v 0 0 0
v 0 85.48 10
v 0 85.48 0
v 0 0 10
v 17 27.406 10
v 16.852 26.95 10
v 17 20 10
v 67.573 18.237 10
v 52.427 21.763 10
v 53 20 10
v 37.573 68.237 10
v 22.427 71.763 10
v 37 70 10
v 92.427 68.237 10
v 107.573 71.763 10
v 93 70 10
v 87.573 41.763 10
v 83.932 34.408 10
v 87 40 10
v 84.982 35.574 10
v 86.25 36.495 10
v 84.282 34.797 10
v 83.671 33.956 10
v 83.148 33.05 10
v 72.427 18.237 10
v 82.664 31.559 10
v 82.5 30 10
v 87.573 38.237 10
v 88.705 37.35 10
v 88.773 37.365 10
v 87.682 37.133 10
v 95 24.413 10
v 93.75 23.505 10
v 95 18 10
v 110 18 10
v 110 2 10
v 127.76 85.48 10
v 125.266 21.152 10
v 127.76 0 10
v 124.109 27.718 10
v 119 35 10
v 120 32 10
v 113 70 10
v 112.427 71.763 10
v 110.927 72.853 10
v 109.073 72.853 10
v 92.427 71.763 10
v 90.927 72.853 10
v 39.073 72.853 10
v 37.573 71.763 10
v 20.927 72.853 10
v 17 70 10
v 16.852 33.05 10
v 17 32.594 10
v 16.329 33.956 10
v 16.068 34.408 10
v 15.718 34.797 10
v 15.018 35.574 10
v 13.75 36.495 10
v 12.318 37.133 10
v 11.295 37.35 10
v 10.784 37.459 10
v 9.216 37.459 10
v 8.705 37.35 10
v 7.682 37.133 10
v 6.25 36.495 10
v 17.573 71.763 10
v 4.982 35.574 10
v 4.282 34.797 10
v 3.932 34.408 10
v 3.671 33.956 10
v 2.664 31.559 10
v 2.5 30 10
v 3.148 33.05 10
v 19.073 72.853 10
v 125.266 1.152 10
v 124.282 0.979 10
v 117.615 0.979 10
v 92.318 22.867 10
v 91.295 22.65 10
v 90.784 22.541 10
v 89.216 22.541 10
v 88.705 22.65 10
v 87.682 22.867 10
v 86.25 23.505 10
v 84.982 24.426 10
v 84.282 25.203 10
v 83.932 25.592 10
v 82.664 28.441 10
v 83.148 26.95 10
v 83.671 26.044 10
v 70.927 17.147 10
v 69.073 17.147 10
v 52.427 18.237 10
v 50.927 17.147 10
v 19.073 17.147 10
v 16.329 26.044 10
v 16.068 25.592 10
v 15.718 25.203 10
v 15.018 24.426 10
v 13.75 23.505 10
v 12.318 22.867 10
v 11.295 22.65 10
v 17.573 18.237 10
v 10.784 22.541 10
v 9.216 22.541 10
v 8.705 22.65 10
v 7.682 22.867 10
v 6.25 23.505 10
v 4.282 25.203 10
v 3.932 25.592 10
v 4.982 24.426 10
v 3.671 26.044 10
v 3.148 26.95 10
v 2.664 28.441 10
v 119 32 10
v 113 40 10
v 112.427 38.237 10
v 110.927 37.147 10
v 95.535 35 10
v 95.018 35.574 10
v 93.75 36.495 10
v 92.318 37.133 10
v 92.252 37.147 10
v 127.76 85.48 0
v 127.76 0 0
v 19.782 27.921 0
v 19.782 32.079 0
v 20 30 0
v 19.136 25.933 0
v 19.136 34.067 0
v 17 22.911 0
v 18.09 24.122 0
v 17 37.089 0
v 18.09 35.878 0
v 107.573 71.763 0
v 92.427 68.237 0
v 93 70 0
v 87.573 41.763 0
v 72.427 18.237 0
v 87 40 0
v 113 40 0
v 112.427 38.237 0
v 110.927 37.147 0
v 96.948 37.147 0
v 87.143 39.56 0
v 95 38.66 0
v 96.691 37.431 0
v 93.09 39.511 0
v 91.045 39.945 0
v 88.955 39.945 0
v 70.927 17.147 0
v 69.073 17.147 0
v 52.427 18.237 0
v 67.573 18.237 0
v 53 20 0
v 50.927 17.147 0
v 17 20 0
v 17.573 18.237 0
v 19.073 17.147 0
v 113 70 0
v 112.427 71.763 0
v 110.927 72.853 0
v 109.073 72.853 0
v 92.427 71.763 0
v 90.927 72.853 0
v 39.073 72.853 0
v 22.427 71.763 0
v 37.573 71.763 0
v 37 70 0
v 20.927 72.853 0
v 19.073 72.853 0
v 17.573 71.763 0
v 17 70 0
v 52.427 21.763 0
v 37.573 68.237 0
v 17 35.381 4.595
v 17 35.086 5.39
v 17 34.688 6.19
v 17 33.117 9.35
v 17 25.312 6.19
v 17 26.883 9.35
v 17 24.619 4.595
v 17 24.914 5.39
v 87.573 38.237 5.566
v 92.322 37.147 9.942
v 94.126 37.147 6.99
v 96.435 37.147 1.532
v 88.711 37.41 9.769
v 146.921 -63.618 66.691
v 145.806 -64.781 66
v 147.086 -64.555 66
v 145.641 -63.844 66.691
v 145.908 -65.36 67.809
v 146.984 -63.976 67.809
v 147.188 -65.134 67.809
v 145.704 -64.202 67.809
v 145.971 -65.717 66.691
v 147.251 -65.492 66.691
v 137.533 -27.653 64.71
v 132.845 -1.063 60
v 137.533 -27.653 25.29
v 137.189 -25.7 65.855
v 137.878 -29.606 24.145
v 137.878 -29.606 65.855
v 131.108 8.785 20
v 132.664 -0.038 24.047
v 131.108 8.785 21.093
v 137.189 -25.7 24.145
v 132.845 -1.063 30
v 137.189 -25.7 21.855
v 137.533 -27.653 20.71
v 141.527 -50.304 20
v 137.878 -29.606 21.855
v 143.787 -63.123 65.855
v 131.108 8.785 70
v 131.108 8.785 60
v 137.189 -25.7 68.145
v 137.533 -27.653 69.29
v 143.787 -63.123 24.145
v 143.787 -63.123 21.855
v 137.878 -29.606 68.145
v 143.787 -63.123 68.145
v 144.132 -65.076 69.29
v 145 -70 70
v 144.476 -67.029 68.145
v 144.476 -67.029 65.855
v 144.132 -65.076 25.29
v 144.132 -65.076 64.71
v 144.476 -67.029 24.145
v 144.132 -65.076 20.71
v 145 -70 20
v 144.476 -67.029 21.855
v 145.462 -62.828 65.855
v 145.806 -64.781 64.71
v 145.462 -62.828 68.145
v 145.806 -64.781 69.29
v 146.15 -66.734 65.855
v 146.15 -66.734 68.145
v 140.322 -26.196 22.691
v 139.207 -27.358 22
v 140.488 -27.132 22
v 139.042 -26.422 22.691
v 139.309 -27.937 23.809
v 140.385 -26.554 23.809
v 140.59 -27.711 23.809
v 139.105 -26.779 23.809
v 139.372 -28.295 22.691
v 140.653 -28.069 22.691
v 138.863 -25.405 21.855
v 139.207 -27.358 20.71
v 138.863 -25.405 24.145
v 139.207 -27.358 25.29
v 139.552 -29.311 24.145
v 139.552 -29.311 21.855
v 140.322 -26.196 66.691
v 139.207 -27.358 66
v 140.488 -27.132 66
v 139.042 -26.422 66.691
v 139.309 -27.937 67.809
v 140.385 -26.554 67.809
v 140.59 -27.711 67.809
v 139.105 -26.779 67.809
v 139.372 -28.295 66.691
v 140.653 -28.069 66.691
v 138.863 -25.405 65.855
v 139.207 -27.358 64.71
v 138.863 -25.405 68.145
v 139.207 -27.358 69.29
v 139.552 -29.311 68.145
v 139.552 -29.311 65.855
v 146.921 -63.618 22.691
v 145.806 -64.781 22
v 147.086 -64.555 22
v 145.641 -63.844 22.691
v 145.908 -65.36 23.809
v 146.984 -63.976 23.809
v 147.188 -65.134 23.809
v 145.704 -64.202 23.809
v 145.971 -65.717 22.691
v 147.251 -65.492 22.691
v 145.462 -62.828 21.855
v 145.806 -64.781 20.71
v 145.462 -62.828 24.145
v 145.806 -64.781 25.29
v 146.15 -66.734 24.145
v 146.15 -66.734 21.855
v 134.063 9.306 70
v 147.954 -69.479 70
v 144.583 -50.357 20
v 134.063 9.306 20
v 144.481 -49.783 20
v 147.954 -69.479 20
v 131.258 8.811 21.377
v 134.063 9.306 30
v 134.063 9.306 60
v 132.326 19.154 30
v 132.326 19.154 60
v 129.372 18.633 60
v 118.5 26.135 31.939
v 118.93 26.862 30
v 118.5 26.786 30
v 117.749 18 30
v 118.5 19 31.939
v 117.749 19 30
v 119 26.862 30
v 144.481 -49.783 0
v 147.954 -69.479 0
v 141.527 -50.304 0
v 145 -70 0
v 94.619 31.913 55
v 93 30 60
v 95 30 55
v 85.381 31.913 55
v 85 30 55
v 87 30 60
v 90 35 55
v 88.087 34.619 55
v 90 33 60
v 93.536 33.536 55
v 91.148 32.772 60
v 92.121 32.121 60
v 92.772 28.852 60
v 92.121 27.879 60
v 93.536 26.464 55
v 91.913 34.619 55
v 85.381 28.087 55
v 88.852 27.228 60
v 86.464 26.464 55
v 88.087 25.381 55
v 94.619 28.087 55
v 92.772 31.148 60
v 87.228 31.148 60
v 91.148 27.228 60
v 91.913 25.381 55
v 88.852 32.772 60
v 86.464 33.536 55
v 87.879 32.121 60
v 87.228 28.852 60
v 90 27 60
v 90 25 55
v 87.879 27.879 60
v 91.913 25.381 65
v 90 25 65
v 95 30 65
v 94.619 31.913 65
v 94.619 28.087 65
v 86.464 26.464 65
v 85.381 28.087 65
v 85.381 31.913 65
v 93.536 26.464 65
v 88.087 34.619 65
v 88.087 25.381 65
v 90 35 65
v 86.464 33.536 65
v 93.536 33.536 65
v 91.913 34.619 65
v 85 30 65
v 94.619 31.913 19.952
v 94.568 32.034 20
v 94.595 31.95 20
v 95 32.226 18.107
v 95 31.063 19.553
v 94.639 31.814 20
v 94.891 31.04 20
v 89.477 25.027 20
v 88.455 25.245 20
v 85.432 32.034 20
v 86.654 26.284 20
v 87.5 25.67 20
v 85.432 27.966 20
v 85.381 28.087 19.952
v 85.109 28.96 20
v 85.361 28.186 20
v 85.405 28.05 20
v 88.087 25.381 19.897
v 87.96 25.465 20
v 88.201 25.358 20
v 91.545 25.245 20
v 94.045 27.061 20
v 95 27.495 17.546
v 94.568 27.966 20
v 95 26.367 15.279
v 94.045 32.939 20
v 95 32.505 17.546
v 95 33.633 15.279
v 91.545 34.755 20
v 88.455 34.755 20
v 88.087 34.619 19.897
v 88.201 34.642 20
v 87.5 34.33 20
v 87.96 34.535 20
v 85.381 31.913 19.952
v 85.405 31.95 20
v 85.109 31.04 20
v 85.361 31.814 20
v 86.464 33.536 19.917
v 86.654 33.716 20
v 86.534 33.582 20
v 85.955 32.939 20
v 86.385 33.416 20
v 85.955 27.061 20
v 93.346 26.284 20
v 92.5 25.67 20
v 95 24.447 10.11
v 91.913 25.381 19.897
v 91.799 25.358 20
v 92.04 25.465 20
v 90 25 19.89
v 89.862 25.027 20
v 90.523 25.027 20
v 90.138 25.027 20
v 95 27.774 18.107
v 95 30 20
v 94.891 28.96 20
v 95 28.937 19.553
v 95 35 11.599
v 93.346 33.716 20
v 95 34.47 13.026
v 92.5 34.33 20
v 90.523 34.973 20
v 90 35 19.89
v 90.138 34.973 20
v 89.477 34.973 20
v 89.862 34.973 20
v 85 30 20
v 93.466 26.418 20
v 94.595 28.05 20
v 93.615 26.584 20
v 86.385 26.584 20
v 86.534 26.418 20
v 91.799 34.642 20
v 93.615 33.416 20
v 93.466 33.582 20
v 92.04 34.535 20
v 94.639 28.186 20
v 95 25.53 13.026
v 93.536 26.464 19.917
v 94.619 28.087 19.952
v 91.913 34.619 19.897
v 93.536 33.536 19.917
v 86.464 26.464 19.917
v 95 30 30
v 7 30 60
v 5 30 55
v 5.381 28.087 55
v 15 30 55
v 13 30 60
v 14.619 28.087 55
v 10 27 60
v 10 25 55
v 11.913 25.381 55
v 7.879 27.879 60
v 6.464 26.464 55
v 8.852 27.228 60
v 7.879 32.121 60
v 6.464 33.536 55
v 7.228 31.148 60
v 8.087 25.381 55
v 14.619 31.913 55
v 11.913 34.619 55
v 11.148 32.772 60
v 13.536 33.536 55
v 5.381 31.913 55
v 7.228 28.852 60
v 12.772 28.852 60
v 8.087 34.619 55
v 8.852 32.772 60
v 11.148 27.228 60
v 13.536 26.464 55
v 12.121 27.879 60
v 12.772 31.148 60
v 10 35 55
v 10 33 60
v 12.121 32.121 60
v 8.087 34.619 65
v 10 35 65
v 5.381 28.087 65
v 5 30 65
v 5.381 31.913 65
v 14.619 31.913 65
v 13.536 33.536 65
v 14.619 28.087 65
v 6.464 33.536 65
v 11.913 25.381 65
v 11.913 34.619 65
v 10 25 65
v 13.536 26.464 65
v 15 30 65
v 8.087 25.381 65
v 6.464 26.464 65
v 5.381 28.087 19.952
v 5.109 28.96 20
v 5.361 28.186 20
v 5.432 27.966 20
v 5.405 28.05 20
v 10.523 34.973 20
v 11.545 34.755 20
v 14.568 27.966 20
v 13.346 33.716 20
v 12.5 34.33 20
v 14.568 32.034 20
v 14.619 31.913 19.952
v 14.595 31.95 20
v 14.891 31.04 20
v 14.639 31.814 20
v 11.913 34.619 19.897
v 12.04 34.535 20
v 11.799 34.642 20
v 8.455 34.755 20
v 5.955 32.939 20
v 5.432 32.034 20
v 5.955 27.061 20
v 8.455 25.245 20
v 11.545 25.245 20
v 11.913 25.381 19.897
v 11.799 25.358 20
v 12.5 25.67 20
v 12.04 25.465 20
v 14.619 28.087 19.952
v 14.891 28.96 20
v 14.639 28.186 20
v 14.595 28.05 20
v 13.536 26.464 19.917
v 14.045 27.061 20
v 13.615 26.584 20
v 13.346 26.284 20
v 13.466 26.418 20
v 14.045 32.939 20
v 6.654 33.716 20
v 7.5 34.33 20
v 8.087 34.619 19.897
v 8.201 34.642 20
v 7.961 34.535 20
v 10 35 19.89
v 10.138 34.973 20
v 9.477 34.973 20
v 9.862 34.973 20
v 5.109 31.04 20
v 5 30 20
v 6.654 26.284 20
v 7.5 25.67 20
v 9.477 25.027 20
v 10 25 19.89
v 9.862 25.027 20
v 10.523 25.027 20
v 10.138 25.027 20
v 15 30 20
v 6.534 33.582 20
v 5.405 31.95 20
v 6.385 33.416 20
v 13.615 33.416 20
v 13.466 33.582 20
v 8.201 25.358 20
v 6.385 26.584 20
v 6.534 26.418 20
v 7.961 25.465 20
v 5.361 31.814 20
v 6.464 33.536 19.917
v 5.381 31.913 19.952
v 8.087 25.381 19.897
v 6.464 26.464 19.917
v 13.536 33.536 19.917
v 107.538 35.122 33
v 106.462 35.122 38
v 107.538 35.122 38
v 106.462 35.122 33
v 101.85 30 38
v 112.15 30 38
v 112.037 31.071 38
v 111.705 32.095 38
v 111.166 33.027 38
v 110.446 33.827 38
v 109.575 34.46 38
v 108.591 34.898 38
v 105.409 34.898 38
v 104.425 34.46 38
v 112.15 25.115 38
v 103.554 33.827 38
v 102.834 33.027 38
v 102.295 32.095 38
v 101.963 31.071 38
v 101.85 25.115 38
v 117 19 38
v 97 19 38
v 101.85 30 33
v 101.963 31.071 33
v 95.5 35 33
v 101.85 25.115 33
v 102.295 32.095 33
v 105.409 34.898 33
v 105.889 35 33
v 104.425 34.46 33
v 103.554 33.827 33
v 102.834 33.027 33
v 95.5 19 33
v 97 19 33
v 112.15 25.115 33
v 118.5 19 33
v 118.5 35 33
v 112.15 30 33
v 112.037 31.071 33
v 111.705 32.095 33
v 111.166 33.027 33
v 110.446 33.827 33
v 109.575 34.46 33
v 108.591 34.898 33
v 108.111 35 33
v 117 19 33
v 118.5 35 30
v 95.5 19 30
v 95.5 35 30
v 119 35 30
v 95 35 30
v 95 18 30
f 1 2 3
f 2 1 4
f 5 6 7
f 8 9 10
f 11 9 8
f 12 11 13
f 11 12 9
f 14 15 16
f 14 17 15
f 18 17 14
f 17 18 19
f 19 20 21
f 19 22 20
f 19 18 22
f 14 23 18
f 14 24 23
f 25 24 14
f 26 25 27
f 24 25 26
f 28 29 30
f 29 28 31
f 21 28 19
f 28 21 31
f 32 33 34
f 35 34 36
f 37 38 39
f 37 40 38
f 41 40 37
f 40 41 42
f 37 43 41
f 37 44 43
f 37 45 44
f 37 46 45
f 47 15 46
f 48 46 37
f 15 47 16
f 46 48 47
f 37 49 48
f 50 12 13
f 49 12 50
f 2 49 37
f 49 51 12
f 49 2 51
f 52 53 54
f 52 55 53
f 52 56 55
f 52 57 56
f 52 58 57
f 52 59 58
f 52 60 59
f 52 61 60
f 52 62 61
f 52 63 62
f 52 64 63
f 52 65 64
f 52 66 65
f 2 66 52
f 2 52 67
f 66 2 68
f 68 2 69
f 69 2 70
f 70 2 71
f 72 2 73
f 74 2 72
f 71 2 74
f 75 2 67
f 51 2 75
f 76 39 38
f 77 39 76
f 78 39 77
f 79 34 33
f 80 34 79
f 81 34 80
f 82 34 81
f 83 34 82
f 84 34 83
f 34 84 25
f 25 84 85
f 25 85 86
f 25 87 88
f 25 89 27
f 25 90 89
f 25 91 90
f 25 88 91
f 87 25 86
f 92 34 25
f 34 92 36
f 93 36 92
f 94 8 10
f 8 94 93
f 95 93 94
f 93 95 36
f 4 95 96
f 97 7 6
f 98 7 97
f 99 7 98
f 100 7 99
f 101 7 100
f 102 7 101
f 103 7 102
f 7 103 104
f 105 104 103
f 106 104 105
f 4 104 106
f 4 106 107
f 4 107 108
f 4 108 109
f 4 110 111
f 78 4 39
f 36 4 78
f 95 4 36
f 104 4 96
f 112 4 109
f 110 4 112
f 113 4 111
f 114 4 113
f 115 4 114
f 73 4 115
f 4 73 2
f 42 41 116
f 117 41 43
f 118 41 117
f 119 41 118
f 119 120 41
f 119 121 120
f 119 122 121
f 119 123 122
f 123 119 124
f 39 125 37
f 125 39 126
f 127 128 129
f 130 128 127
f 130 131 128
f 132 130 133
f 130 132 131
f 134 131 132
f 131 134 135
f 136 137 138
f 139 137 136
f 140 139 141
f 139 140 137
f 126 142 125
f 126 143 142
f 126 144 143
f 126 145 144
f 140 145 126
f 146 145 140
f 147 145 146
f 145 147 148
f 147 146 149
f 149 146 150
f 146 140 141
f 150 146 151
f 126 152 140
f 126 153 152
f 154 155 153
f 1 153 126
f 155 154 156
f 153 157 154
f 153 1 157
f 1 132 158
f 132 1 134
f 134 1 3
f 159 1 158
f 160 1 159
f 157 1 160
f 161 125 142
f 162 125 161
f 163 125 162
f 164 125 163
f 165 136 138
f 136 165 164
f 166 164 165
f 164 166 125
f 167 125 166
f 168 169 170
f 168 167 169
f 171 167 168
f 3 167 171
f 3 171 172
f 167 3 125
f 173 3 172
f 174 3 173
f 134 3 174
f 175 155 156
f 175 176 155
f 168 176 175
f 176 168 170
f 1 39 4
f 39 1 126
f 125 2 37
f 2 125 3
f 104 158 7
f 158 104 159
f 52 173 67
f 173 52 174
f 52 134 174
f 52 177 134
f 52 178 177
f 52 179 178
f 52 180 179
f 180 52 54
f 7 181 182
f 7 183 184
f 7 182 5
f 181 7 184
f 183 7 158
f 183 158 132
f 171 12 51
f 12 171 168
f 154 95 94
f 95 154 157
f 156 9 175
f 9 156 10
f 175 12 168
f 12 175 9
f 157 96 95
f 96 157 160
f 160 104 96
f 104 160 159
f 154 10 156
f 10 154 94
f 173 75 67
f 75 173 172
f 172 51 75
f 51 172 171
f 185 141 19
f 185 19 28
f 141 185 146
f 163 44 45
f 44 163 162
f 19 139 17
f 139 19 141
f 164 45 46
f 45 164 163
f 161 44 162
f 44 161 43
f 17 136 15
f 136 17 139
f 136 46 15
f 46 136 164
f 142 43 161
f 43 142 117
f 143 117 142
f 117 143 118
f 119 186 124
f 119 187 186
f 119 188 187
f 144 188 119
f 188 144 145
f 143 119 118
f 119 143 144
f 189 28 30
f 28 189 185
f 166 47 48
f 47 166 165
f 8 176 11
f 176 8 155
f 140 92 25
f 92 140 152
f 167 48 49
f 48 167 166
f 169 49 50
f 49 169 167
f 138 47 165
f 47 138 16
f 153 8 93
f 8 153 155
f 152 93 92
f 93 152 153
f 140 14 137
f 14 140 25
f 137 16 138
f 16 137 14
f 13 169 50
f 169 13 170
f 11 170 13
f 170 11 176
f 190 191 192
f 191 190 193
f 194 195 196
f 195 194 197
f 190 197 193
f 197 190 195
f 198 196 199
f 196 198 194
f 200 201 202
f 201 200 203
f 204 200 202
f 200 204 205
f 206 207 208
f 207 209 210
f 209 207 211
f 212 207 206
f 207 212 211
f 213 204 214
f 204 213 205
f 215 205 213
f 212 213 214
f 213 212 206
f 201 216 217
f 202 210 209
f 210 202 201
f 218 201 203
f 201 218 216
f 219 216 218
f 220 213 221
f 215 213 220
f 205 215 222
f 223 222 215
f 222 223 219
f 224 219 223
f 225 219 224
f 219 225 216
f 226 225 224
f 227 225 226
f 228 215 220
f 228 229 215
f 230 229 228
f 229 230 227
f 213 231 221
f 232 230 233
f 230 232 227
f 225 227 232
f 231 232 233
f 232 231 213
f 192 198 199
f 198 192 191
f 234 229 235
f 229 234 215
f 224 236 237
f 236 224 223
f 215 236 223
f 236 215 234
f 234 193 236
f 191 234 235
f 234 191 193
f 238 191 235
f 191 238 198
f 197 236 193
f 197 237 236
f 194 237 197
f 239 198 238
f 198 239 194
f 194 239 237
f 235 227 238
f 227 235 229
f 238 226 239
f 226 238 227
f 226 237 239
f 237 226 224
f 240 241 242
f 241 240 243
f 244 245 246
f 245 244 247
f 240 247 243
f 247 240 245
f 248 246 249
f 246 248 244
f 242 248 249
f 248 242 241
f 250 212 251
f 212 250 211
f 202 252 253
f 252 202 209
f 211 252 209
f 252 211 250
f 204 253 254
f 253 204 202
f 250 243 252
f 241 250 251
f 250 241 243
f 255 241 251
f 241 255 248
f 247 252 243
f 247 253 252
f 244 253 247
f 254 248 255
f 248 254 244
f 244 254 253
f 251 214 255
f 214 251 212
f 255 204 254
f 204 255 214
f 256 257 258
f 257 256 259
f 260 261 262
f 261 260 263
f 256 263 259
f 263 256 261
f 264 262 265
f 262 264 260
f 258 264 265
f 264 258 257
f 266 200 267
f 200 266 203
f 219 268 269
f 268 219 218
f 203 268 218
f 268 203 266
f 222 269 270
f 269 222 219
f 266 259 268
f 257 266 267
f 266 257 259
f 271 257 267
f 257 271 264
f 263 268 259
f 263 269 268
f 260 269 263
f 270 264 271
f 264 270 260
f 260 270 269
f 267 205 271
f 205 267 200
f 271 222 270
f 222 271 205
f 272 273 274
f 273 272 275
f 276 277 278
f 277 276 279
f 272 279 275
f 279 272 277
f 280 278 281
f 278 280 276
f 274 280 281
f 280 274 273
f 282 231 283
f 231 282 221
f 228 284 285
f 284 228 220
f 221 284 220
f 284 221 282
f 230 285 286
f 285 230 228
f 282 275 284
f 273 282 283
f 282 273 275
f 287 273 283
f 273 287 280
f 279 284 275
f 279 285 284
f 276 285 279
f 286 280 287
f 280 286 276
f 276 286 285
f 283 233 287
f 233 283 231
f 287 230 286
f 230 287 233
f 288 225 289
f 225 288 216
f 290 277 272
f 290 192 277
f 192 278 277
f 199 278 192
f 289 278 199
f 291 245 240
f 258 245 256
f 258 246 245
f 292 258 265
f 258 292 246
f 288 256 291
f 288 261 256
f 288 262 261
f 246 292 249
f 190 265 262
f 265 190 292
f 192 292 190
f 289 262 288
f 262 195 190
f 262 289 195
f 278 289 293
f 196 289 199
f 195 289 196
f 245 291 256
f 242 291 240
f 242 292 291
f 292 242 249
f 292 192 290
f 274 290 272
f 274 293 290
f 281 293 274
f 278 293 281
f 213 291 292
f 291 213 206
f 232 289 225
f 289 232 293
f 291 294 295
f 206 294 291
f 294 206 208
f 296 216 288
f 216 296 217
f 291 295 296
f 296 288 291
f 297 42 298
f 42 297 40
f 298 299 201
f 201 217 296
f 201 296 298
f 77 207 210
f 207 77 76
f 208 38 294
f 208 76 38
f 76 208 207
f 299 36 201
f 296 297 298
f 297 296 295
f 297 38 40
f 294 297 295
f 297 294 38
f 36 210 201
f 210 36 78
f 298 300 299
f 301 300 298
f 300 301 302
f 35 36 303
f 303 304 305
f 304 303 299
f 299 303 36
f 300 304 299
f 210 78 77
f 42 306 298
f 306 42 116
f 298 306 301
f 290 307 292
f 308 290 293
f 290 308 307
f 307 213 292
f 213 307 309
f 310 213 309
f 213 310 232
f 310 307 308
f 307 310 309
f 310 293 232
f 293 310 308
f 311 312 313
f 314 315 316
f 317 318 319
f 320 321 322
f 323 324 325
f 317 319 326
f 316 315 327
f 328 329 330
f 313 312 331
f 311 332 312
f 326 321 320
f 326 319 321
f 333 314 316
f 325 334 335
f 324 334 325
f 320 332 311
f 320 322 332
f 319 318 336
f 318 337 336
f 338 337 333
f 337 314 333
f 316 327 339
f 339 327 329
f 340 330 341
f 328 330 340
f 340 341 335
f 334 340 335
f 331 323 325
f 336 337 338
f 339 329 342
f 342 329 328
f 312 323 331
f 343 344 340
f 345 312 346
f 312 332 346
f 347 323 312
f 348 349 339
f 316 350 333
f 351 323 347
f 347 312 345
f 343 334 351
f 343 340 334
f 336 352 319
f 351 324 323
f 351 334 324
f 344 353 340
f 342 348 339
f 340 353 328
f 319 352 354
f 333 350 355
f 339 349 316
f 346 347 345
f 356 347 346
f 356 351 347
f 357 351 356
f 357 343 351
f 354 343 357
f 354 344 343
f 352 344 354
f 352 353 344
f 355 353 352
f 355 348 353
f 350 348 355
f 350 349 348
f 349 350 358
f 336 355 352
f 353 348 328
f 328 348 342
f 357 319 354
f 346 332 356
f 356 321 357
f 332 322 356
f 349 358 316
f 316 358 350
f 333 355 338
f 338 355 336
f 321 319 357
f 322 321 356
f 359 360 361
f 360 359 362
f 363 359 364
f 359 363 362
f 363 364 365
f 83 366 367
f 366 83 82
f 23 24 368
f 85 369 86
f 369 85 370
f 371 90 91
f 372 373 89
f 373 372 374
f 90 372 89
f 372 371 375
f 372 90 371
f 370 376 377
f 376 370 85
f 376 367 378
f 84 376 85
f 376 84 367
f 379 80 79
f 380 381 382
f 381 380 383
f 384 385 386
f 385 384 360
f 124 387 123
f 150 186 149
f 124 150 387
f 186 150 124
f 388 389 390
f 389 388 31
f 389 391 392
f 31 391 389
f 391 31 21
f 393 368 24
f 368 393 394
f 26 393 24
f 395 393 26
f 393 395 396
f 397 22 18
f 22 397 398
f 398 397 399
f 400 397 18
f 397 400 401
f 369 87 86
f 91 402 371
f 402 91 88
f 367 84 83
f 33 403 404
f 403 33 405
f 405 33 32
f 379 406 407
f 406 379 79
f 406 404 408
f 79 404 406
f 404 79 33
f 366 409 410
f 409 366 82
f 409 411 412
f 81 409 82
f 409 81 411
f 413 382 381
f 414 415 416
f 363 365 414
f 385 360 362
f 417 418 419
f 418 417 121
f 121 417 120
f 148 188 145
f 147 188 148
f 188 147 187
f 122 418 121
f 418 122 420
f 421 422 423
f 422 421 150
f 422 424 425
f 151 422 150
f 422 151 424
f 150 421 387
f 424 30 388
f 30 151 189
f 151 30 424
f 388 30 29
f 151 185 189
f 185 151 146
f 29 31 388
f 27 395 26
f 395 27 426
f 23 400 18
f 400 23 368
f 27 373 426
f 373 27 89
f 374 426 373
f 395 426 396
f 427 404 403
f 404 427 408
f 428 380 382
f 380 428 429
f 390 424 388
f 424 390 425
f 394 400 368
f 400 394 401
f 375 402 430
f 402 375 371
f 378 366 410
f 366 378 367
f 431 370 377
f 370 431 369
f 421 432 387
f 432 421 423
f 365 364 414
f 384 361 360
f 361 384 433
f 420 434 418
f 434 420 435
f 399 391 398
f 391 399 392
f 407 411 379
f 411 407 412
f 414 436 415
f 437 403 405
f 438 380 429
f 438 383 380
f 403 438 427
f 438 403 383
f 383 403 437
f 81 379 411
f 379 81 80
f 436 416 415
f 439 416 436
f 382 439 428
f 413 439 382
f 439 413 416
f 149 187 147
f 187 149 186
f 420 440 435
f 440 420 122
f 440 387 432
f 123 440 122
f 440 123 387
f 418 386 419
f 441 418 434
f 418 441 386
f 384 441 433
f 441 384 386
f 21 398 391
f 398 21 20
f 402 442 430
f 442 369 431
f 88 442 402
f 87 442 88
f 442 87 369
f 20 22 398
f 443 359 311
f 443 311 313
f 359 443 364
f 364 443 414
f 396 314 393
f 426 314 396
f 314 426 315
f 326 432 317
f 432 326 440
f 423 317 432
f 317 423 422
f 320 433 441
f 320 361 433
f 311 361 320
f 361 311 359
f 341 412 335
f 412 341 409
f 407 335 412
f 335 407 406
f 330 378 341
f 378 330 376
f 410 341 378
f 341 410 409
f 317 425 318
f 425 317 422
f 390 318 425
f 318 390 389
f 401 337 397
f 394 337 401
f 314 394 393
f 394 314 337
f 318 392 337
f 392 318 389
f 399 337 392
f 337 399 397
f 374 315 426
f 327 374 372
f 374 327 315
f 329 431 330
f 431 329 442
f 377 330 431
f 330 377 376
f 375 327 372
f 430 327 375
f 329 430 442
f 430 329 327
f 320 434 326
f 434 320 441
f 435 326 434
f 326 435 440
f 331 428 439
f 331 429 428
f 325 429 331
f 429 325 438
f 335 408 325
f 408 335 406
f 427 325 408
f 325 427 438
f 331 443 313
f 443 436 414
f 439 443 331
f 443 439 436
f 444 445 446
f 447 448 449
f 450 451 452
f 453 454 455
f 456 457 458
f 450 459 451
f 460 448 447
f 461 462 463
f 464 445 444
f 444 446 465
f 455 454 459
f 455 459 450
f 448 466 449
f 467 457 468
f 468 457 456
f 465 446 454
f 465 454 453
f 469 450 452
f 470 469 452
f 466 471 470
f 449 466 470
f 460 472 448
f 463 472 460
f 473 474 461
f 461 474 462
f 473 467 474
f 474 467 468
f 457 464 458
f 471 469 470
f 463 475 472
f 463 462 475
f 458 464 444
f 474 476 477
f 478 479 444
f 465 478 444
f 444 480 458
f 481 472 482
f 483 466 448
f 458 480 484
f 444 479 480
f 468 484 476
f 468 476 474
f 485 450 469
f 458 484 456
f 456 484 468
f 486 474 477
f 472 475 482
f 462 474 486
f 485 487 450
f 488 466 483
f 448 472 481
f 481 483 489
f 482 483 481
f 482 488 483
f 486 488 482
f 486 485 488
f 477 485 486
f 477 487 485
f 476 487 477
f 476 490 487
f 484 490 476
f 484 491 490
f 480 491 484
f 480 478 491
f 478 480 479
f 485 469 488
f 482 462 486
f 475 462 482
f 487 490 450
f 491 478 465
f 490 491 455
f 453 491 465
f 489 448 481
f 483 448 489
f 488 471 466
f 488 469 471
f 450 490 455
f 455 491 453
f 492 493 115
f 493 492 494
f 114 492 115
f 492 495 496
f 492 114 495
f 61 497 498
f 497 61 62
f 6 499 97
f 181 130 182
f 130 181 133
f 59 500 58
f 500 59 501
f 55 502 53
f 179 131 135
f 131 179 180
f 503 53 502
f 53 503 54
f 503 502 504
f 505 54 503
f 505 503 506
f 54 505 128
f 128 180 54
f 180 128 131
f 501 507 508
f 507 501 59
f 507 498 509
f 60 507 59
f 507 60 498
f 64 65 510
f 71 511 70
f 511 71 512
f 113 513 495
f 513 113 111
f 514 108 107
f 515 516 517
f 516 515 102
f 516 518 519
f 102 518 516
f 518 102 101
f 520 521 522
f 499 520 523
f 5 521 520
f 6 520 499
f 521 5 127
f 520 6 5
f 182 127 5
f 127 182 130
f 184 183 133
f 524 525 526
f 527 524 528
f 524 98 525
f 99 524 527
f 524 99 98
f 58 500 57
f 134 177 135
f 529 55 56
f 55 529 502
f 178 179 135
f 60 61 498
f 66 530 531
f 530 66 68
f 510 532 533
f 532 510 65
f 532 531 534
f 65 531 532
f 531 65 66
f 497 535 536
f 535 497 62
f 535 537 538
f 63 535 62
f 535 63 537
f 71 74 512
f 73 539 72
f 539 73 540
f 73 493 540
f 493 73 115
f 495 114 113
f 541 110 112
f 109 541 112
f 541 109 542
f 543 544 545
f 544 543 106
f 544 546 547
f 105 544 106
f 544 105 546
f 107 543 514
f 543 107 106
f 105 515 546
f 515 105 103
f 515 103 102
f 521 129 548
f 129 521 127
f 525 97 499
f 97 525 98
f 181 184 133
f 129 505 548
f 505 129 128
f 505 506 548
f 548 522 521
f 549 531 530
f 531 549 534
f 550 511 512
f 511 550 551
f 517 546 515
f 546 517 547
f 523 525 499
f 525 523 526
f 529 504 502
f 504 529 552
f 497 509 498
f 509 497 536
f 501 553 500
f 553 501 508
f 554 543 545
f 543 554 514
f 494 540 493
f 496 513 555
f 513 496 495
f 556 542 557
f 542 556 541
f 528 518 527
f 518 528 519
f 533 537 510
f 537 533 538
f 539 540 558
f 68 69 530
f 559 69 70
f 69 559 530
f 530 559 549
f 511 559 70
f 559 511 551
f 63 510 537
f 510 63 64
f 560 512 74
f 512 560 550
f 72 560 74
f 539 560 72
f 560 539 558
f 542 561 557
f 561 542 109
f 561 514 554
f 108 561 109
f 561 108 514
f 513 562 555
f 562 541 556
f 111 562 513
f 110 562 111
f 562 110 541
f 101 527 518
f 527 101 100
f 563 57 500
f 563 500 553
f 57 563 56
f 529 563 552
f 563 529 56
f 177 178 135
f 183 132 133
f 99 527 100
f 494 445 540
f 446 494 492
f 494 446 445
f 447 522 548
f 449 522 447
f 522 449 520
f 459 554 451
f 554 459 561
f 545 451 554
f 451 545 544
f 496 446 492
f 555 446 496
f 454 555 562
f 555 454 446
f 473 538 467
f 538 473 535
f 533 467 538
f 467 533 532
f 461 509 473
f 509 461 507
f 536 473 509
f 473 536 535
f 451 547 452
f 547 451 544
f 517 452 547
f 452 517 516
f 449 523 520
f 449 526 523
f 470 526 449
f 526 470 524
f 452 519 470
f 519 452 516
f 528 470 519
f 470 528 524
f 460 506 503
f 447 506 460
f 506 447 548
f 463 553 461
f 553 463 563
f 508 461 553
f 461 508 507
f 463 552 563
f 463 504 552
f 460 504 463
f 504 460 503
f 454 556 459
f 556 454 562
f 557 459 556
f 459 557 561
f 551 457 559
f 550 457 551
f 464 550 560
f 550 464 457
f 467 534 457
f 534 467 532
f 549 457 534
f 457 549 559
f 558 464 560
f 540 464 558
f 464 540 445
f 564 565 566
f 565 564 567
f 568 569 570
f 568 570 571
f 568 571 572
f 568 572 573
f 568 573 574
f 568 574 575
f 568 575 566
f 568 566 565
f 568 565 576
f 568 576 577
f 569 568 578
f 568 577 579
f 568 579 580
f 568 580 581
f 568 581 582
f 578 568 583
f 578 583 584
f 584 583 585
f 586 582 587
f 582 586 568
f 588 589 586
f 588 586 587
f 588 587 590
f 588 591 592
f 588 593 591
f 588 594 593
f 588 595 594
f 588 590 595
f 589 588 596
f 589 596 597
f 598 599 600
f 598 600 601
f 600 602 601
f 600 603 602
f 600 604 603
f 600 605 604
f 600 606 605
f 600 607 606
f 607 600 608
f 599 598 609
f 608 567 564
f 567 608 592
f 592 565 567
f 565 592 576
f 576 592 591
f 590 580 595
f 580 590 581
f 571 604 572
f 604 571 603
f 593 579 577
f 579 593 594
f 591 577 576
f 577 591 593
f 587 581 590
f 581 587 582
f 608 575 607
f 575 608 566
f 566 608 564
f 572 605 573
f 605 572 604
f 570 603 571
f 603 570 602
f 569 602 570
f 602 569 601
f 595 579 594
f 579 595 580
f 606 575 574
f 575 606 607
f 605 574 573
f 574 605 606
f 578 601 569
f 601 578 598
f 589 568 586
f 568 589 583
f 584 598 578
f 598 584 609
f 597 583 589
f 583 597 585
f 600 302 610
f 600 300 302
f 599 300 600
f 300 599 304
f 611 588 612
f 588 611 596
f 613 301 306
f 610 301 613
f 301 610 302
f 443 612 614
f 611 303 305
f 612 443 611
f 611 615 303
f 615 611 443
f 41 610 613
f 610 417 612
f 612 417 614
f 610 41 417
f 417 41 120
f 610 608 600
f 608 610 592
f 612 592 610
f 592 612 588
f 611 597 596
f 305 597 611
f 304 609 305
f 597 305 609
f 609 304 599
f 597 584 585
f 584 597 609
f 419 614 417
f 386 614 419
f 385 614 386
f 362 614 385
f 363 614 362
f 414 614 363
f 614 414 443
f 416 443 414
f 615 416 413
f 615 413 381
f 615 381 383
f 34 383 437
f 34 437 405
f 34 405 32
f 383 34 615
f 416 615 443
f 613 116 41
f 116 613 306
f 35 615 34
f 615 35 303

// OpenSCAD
// file: ot_grabber_big.scad
$fn=30;
tube_small_width = 12.0;
tube_big_width = 13.8;
holder_width=20;
holder_extra=14;
holder_length=24;
tolerance=2;
use <MCAD/nuts_and_bolts.scad>;


module one_neg_bit(){
    cylinder(r=tube_small_width/2,h=5);

translate([-tube_small_width/2,0,0])
cube([tube_small_width,20,25]);


hull(){
translate([-holder_width/2,holder_length-holder_extra,0])
    
cube([holder_width,3,25]);
 cylinder(r=1,h=50);   };
 };
 
 
 module one_neg_bit_for_calibration(){
     calibration_tolerance=0.5;
    cylinder(r=tube_small_width/2-calibration_tolerance,h=5);

translate([-tube_small_width/2+calibration_tolerance,0,0])
cube([tube_small_width-calibration_tolerance*2,20,5]);


hull(){
    
translate([-holder_width/2,holder_length-holder_extra+calibration_tolerance*2,0])
    
cube([holder_width,3,5]);
 cylinder(r=1,h=5);   };
 translate([0,5,-1.5])
 cube([23,20,3],center=true);
 };
 
 
 
 module grabber(){
difference(){
    translate([-20/2,-holder_extra,0])
cube([20,4,60]);
    translate([0,0,15])
    rotate([90,0,0])
#cylinder(r=2.6,h=50);
      translate([0,0,45])
    rotate([90,0,0])
#cylinder(r=2.6,h=50);
    
      translate([0,0,30])
    rotate([90,0,0])
#cylinder(r=2.6,h=50);
}

difference(){
    translate([-holder_width/2,-holder_extra,0])
    cube([holder_width,holder_length,7]);

    one_neg_bit();
//translate([-tube_big_width/2,0,3])
//cube([tube_big_width,20,3]);


translate([0,0,3])
cylinder(r1=tube_big_width/2,r2=tube_big_width/2+tolerance,h=5);


}
};


module smaller(){
    
    one_neg_bit();
}


big_dist_pipette = 89;
small_dist_pipette = 26.3;
size =35;

module copy_mirror(vec=[0,1,0])
{
    children();
    mirror(vec) children();
}


module neg_bit(){
    cylinder(r=1.6,h=30);
    nutHole(3,tolerance = 0.1);
}

module neg_bit2(){
    cylinder(r=2.6,h=30);
    translate([0,0,2])
    cylinder(r=5,h=30);
}


grabber();

module pipette_negative(){
copy_mirror(){
    
    translate([0,small_dist_pipette/2,0])
      rotate([0,90,0]) neg_bit();
    
    
       translate([0,small_dist_pipette/2,big_dist_pipette])
      rotate([0,90,0]) neg_bit();
    
    
    translate([0,0,10])  rotate([0,90,0]) neg_bit2();
    
     translate([0,0,70])  rotate([0,90,0]) neg_bit2();
    
}
    
    
}


module mount(){
difference(){
translate([0,-size/2,0])
cube([4,size,100]);
    
    translate([0,0,5])
#pipette_negative();
    
}

};
// file: barcode_mount.scad
use <MCAD/nuts_and_bolts.scad>;


dist_y=38;
dist_x=44;
size_x=50;
size_y=80;
thickness=3;

module neg_bit(){
    cylinder(r=1,h=30);
    nutHole(2,tolerance = 0.1);
}



module neg_set(){
    neg_bit();
translate([dist_x,dist_y,0]) neg_bit();

translate([0,dist_y,0]) neg_bit();
translate([dist_x,0,0]) neg_bit();
}


module barcode_mount(){


difference(){
    cube([size_x,size_y,thickness]);
    translate([(size_x-dist_x)/2,5,0])neg_set();

    
}};

barcode_mount();
// main file
plate_x=127.76;
plate_y=85.48;
thickness=10;

difference(){
cube([plate_x,plate_y,thickness]);
    
    
    hull(){
        
        #translate([20,20,0])cylinder(r=3,h=20);
        #translate([50,20,0]) cylinder(r=3,h=20);
      #  translate([20,70,0]) cylinder(r=3,h=20);
        
        
    }
    
    
    hull(){
        
        #translate([90,40,0])cylinder(r=3,h=20);
        #translate([110,40,0]) cylinder(r=3,h=20);
      #  translate([110,70,0]) cylinder(r=3,h=20);
        
        
    }
    
    
    hull(){
        
        #translate([90,70,0])cylinder(r=3,h=20);
        #translate([70,20,0]) cylinder(r=3,h=20);
      #  translate([40,70,0]) cylinder(r=3,h=20);
        
        
    }
}



barcode_attachment();
use <barcode_mount.scad>;


module goalpost(){
    
    hull(){
        cylinder(r1=10,r2=5,h=20);  
        
    }
  
    cylinder(r=5,h=55);  
      
      translate([0,0,55]){
      cylinder(r1=5,r2=3,h=5); 
          translate([0,0,5])
          cylinder(r1=3,r2=5,h=5); 
         
         
      
    
      
  };
};


translate([90,30,0])
goalpost();
translate([10,30,0])
rotate([0,0,180])
goalpost();

module barcode_attachment(){
hull(){
translate([110,2,0])
cube([10,30,10]);
translate([145,-70,0])
rotate([0,0,10])
    translate([0,70,30])
    cube([3,20,30]);

}
translate([145,-70,0])
rotate([0,0,10])
    translate([0,0,0])
    cube([3,20,20]);



translate([145,-70,70])
rotate([0,90,10])
barcode_mount();


};
color("blue")
hull(){
       translate([95,18,0])
       cube([24,17,30]); 
    }
    
translate([107,30,33])difference(){
    rotate([0,0,180])
one_neg_bit_for_calibration();
    translate([-30,-30,-10])
    cube([50,19,50]);
    

}
use <ot_grabber_big.scad>;
translate([107,30,33])
rotate([0,0,180])
%grabber();
